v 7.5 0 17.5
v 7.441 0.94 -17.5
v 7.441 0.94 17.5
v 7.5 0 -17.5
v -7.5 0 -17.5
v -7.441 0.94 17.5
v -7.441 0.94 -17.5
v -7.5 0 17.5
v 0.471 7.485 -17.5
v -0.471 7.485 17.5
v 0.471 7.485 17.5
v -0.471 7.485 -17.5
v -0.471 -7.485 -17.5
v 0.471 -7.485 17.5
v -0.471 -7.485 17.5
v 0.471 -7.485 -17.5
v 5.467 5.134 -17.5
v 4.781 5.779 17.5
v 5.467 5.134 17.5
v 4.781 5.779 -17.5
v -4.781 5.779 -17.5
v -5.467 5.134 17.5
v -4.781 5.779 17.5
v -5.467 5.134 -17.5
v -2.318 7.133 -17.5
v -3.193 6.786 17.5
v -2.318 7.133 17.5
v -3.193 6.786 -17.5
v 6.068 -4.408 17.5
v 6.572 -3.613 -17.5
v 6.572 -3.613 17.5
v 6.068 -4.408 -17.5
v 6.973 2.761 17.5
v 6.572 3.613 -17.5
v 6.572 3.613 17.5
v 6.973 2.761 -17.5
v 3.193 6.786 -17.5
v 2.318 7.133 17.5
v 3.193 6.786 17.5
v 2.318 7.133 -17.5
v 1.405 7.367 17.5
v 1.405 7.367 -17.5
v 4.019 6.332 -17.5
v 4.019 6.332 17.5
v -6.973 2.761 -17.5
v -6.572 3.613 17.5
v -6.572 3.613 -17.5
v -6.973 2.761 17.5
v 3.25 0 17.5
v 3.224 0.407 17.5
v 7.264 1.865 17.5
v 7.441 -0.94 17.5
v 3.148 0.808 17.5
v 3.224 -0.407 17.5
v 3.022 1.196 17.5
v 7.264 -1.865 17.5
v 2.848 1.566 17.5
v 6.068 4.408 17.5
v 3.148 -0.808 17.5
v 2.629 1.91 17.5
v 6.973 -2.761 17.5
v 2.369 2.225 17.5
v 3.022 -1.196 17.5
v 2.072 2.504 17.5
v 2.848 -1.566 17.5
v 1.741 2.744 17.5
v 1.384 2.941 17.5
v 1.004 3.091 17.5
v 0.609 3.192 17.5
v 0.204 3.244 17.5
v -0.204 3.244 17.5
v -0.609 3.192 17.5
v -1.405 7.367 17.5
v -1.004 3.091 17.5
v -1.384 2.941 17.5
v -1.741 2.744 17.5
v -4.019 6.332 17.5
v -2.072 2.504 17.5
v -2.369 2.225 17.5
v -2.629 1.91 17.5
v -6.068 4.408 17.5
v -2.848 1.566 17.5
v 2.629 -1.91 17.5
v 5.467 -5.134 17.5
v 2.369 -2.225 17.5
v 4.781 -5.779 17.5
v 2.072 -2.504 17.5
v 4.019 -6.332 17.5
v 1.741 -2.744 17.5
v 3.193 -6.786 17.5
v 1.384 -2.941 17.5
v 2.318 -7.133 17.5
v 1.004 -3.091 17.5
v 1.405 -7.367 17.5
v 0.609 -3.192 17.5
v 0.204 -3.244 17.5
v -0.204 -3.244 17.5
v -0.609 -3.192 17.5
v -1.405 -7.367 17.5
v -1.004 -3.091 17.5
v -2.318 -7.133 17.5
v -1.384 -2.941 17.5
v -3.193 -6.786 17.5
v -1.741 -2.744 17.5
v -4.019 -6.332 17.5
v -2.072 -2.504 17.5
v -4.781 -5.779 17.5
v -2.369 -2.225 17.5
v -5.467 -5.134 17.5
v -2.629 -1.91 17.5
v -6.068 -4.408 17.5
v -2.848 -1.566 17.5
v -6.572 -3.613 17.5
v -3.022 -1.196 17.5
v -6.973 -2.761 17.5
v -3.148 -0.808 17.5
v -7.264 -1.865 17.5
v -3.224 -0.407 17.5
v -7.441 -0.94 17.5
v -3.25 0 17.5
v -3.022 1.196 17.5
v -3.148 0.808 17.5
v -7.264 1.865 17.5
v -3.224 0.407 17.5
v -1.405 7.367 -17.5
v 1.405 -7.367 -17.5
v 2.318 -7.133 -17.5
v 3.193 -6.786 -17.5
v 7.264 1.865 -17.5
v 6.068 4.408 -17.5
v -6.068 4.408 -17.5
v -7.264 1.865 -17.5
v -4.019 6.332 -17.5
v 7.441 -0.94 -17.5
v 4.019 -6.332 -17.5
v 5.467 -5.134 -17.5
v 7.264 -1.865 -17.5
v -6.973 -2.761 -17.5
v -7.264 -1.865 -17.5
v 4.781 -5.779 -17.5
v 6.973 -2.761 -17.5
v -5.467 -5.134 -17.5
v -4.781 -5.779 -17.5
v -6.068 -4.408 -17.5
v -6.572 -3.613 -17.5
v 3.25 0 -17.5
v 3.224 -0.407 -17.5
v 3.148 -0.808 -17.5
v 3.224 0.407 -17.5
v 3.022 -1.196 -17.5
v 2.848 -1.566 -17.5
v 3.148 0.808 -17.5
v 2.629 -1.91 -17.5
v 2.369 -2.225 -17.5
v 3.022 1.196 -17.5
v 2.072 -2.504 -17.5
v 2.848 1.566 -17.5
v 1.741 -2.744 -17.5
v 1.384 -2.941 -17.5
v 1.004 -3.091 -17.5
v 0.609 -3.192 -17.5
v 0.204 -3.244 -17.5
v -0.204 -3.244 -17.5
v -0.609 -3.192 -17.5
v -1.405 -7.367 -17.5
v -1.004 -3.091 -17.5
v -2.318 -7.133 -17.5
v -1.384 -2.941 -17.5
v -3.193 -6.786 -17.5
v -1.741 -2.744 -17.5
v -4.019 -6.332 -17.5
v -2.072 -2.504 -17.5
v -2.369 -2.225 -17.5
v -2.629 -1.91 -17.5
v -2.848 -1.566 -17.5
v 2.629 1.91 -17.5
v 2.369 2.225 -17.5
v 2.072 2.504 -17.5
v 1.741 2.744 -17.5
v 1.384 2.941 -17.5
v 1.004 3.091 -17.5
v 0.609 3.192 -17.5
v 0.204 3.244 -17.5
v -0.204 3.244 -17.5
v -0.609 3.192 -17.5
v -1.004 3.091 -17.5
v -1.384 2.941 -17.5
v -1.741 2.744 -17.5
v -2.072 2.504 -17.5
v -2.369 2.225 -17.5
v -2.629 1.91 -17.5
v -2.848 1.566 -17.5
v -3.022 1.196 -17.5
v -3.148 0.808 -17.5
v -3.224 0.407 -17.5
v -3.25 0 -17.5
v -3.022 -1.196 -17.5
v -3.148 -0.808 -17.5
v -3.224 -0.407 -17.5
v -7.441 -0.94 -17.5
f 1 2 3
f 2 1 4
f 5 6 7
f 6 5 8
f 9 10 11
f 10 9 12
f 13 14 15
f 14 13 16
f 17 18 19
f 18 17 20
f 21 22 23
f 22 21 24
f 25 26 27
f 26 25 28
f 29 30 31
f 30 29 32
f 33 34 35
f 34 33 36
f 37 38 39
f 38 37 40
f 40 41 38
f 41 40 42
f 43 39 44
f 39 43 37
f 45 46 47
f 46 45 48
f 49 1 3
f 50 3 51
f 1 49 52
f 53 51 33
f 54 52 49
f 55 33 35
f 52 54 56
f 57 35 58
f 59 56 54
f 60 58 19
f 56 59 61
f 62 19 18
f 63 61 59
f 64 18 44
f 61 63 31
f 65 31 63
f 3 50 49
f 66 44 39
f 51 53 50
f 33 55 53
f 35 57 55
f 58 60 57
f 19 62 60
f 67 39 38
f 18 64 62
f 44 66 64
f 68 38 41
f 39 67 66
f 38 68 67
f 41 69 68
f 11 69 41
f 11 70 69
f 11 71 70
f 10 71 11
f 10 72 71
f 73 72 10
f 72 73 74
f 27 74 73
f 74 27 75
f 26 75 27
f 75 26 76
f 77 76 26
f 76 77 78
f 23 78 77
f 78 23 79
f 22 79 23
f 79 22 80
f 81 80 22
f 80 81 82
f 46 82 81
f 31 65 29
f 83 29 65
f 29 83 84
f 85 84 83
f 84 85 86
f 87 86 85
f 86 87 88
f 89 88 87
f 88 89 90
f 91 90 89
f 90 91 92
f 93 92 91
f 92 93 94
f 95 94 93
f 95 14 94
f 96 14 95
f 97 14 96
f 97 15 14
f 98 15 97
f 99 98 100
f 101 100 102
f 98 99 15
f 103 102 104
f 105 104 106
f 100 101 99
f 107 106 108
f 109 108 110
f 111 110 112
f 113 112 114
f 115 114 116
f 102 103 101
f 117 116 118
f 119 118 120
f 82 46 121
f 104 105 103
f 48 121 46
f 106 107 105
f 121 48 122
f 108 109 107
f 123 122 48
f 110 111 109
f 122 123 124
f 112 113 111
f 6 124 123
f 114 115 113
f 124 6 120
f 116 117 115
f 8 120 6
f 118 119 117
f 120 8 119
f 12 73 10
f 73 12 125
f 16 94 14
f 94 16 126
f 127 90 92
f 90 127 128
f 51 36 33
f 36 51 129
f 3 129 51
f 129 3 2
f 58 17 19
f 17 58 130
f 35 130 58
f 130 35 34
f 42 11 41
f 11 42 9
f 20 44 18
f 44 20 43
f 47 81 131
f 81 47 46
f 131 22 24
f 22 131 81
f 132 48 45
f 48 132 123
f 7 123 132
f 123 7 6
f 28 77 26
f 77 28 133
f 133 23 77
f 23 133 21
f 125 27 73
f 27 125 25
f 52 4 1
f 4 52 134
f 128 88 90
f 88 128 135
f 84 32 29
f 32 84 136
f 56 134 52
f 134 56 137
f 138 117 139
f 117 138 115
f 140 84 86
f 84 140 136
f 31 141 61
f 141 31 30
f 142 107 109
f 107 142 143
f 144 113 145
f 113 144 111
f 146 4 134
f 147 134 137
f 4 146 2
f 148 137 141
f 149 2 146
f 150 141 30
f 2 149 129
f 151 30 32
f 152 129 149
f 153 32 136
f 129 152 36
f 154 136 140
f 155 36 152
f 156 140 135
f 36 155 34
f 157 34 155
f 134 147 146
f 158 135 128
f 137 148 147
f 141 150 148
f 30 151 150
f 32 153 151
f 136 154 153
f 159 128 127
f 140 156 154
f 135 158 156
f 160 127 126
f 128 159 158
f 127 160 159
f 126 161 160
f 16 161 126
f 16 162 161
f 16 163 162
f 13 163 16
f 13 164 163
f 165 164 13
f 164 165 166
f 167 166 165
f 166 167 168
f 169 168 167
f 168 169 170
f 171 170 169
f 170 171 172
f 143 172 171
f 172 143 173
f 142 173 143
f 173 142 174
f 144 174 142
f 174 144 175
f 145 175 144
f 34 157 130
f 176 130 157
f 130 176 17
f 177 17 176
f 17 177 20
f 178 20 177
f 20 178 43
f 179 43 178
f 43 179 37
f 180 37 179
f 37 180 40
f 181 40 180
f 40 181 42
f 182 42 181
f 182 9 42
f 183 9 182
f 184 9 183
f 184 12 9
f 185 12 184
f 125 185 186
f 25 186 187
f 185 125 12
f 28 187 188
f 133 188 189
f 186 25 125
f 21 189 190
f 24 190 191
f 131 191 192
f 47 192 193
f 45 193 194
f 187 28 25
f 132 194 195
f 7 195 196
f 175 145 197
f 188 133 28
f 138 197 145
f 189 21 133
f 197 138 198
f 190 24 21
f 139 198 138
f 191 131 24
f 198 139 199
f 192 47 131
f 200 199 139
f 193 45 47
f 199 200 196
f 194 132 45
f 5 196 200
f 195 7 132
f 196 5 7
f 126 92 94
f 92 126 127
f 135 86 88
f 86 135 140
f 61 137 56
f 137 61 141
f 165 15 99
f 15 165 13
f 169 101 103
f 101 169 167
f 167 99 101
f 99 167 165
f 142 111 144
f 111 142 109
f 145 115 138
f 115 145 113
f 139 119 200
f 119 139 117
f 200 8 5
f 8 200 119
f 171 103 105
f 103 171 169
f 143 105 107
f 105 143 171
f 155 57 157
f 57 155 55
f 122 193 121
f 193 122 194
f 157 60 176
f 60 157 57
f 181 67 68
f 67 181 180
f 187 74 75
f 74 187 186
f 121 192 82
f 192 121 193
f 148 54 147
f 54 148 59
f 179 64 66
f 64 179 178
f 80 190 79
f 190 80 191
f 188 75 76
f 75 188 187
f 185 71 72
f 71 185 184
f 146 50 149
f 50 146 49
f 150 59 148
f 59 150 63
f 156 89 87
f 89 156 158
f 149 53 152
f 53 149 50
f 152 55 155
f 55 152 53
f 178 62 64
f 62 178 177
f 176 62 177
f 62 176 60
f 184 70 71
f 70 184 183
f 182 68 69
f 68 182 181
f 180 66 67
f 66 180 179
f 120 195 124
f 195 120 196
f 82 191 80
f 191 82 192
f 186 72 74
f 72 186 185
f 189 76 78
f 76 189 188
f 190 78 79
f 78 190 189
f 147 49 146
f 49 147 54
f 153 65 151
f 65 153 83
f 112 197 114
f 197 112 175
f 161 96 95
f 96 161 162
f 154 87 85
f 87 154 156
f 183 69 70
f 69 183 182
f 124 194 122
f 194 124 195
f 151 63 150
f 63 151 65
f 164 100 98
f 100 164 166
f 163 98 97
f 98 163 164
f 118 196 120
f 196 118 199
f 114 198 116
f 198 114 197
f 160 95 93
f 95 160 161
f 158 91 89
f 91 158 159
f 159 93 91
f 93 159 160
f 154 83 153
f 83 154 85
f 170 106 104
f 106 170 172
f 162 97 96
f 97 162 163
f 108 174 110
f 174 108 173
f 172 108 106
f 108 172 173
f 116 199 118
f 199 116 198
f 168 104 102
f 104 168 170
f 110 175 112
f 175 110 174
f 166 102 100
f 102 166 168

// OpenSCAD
$fn = 50;


difference() {
	union() {
		translate(v = [0, 0, -17.5000000000]) {
			cylinder(h = 35, r = 7.5000000000);
		}
	}
	union() {
		translate(v = [0, 0, -100.0000000000]) {
			cylinder(h = 200, r = 3.2500000000);
		}
	}
}
